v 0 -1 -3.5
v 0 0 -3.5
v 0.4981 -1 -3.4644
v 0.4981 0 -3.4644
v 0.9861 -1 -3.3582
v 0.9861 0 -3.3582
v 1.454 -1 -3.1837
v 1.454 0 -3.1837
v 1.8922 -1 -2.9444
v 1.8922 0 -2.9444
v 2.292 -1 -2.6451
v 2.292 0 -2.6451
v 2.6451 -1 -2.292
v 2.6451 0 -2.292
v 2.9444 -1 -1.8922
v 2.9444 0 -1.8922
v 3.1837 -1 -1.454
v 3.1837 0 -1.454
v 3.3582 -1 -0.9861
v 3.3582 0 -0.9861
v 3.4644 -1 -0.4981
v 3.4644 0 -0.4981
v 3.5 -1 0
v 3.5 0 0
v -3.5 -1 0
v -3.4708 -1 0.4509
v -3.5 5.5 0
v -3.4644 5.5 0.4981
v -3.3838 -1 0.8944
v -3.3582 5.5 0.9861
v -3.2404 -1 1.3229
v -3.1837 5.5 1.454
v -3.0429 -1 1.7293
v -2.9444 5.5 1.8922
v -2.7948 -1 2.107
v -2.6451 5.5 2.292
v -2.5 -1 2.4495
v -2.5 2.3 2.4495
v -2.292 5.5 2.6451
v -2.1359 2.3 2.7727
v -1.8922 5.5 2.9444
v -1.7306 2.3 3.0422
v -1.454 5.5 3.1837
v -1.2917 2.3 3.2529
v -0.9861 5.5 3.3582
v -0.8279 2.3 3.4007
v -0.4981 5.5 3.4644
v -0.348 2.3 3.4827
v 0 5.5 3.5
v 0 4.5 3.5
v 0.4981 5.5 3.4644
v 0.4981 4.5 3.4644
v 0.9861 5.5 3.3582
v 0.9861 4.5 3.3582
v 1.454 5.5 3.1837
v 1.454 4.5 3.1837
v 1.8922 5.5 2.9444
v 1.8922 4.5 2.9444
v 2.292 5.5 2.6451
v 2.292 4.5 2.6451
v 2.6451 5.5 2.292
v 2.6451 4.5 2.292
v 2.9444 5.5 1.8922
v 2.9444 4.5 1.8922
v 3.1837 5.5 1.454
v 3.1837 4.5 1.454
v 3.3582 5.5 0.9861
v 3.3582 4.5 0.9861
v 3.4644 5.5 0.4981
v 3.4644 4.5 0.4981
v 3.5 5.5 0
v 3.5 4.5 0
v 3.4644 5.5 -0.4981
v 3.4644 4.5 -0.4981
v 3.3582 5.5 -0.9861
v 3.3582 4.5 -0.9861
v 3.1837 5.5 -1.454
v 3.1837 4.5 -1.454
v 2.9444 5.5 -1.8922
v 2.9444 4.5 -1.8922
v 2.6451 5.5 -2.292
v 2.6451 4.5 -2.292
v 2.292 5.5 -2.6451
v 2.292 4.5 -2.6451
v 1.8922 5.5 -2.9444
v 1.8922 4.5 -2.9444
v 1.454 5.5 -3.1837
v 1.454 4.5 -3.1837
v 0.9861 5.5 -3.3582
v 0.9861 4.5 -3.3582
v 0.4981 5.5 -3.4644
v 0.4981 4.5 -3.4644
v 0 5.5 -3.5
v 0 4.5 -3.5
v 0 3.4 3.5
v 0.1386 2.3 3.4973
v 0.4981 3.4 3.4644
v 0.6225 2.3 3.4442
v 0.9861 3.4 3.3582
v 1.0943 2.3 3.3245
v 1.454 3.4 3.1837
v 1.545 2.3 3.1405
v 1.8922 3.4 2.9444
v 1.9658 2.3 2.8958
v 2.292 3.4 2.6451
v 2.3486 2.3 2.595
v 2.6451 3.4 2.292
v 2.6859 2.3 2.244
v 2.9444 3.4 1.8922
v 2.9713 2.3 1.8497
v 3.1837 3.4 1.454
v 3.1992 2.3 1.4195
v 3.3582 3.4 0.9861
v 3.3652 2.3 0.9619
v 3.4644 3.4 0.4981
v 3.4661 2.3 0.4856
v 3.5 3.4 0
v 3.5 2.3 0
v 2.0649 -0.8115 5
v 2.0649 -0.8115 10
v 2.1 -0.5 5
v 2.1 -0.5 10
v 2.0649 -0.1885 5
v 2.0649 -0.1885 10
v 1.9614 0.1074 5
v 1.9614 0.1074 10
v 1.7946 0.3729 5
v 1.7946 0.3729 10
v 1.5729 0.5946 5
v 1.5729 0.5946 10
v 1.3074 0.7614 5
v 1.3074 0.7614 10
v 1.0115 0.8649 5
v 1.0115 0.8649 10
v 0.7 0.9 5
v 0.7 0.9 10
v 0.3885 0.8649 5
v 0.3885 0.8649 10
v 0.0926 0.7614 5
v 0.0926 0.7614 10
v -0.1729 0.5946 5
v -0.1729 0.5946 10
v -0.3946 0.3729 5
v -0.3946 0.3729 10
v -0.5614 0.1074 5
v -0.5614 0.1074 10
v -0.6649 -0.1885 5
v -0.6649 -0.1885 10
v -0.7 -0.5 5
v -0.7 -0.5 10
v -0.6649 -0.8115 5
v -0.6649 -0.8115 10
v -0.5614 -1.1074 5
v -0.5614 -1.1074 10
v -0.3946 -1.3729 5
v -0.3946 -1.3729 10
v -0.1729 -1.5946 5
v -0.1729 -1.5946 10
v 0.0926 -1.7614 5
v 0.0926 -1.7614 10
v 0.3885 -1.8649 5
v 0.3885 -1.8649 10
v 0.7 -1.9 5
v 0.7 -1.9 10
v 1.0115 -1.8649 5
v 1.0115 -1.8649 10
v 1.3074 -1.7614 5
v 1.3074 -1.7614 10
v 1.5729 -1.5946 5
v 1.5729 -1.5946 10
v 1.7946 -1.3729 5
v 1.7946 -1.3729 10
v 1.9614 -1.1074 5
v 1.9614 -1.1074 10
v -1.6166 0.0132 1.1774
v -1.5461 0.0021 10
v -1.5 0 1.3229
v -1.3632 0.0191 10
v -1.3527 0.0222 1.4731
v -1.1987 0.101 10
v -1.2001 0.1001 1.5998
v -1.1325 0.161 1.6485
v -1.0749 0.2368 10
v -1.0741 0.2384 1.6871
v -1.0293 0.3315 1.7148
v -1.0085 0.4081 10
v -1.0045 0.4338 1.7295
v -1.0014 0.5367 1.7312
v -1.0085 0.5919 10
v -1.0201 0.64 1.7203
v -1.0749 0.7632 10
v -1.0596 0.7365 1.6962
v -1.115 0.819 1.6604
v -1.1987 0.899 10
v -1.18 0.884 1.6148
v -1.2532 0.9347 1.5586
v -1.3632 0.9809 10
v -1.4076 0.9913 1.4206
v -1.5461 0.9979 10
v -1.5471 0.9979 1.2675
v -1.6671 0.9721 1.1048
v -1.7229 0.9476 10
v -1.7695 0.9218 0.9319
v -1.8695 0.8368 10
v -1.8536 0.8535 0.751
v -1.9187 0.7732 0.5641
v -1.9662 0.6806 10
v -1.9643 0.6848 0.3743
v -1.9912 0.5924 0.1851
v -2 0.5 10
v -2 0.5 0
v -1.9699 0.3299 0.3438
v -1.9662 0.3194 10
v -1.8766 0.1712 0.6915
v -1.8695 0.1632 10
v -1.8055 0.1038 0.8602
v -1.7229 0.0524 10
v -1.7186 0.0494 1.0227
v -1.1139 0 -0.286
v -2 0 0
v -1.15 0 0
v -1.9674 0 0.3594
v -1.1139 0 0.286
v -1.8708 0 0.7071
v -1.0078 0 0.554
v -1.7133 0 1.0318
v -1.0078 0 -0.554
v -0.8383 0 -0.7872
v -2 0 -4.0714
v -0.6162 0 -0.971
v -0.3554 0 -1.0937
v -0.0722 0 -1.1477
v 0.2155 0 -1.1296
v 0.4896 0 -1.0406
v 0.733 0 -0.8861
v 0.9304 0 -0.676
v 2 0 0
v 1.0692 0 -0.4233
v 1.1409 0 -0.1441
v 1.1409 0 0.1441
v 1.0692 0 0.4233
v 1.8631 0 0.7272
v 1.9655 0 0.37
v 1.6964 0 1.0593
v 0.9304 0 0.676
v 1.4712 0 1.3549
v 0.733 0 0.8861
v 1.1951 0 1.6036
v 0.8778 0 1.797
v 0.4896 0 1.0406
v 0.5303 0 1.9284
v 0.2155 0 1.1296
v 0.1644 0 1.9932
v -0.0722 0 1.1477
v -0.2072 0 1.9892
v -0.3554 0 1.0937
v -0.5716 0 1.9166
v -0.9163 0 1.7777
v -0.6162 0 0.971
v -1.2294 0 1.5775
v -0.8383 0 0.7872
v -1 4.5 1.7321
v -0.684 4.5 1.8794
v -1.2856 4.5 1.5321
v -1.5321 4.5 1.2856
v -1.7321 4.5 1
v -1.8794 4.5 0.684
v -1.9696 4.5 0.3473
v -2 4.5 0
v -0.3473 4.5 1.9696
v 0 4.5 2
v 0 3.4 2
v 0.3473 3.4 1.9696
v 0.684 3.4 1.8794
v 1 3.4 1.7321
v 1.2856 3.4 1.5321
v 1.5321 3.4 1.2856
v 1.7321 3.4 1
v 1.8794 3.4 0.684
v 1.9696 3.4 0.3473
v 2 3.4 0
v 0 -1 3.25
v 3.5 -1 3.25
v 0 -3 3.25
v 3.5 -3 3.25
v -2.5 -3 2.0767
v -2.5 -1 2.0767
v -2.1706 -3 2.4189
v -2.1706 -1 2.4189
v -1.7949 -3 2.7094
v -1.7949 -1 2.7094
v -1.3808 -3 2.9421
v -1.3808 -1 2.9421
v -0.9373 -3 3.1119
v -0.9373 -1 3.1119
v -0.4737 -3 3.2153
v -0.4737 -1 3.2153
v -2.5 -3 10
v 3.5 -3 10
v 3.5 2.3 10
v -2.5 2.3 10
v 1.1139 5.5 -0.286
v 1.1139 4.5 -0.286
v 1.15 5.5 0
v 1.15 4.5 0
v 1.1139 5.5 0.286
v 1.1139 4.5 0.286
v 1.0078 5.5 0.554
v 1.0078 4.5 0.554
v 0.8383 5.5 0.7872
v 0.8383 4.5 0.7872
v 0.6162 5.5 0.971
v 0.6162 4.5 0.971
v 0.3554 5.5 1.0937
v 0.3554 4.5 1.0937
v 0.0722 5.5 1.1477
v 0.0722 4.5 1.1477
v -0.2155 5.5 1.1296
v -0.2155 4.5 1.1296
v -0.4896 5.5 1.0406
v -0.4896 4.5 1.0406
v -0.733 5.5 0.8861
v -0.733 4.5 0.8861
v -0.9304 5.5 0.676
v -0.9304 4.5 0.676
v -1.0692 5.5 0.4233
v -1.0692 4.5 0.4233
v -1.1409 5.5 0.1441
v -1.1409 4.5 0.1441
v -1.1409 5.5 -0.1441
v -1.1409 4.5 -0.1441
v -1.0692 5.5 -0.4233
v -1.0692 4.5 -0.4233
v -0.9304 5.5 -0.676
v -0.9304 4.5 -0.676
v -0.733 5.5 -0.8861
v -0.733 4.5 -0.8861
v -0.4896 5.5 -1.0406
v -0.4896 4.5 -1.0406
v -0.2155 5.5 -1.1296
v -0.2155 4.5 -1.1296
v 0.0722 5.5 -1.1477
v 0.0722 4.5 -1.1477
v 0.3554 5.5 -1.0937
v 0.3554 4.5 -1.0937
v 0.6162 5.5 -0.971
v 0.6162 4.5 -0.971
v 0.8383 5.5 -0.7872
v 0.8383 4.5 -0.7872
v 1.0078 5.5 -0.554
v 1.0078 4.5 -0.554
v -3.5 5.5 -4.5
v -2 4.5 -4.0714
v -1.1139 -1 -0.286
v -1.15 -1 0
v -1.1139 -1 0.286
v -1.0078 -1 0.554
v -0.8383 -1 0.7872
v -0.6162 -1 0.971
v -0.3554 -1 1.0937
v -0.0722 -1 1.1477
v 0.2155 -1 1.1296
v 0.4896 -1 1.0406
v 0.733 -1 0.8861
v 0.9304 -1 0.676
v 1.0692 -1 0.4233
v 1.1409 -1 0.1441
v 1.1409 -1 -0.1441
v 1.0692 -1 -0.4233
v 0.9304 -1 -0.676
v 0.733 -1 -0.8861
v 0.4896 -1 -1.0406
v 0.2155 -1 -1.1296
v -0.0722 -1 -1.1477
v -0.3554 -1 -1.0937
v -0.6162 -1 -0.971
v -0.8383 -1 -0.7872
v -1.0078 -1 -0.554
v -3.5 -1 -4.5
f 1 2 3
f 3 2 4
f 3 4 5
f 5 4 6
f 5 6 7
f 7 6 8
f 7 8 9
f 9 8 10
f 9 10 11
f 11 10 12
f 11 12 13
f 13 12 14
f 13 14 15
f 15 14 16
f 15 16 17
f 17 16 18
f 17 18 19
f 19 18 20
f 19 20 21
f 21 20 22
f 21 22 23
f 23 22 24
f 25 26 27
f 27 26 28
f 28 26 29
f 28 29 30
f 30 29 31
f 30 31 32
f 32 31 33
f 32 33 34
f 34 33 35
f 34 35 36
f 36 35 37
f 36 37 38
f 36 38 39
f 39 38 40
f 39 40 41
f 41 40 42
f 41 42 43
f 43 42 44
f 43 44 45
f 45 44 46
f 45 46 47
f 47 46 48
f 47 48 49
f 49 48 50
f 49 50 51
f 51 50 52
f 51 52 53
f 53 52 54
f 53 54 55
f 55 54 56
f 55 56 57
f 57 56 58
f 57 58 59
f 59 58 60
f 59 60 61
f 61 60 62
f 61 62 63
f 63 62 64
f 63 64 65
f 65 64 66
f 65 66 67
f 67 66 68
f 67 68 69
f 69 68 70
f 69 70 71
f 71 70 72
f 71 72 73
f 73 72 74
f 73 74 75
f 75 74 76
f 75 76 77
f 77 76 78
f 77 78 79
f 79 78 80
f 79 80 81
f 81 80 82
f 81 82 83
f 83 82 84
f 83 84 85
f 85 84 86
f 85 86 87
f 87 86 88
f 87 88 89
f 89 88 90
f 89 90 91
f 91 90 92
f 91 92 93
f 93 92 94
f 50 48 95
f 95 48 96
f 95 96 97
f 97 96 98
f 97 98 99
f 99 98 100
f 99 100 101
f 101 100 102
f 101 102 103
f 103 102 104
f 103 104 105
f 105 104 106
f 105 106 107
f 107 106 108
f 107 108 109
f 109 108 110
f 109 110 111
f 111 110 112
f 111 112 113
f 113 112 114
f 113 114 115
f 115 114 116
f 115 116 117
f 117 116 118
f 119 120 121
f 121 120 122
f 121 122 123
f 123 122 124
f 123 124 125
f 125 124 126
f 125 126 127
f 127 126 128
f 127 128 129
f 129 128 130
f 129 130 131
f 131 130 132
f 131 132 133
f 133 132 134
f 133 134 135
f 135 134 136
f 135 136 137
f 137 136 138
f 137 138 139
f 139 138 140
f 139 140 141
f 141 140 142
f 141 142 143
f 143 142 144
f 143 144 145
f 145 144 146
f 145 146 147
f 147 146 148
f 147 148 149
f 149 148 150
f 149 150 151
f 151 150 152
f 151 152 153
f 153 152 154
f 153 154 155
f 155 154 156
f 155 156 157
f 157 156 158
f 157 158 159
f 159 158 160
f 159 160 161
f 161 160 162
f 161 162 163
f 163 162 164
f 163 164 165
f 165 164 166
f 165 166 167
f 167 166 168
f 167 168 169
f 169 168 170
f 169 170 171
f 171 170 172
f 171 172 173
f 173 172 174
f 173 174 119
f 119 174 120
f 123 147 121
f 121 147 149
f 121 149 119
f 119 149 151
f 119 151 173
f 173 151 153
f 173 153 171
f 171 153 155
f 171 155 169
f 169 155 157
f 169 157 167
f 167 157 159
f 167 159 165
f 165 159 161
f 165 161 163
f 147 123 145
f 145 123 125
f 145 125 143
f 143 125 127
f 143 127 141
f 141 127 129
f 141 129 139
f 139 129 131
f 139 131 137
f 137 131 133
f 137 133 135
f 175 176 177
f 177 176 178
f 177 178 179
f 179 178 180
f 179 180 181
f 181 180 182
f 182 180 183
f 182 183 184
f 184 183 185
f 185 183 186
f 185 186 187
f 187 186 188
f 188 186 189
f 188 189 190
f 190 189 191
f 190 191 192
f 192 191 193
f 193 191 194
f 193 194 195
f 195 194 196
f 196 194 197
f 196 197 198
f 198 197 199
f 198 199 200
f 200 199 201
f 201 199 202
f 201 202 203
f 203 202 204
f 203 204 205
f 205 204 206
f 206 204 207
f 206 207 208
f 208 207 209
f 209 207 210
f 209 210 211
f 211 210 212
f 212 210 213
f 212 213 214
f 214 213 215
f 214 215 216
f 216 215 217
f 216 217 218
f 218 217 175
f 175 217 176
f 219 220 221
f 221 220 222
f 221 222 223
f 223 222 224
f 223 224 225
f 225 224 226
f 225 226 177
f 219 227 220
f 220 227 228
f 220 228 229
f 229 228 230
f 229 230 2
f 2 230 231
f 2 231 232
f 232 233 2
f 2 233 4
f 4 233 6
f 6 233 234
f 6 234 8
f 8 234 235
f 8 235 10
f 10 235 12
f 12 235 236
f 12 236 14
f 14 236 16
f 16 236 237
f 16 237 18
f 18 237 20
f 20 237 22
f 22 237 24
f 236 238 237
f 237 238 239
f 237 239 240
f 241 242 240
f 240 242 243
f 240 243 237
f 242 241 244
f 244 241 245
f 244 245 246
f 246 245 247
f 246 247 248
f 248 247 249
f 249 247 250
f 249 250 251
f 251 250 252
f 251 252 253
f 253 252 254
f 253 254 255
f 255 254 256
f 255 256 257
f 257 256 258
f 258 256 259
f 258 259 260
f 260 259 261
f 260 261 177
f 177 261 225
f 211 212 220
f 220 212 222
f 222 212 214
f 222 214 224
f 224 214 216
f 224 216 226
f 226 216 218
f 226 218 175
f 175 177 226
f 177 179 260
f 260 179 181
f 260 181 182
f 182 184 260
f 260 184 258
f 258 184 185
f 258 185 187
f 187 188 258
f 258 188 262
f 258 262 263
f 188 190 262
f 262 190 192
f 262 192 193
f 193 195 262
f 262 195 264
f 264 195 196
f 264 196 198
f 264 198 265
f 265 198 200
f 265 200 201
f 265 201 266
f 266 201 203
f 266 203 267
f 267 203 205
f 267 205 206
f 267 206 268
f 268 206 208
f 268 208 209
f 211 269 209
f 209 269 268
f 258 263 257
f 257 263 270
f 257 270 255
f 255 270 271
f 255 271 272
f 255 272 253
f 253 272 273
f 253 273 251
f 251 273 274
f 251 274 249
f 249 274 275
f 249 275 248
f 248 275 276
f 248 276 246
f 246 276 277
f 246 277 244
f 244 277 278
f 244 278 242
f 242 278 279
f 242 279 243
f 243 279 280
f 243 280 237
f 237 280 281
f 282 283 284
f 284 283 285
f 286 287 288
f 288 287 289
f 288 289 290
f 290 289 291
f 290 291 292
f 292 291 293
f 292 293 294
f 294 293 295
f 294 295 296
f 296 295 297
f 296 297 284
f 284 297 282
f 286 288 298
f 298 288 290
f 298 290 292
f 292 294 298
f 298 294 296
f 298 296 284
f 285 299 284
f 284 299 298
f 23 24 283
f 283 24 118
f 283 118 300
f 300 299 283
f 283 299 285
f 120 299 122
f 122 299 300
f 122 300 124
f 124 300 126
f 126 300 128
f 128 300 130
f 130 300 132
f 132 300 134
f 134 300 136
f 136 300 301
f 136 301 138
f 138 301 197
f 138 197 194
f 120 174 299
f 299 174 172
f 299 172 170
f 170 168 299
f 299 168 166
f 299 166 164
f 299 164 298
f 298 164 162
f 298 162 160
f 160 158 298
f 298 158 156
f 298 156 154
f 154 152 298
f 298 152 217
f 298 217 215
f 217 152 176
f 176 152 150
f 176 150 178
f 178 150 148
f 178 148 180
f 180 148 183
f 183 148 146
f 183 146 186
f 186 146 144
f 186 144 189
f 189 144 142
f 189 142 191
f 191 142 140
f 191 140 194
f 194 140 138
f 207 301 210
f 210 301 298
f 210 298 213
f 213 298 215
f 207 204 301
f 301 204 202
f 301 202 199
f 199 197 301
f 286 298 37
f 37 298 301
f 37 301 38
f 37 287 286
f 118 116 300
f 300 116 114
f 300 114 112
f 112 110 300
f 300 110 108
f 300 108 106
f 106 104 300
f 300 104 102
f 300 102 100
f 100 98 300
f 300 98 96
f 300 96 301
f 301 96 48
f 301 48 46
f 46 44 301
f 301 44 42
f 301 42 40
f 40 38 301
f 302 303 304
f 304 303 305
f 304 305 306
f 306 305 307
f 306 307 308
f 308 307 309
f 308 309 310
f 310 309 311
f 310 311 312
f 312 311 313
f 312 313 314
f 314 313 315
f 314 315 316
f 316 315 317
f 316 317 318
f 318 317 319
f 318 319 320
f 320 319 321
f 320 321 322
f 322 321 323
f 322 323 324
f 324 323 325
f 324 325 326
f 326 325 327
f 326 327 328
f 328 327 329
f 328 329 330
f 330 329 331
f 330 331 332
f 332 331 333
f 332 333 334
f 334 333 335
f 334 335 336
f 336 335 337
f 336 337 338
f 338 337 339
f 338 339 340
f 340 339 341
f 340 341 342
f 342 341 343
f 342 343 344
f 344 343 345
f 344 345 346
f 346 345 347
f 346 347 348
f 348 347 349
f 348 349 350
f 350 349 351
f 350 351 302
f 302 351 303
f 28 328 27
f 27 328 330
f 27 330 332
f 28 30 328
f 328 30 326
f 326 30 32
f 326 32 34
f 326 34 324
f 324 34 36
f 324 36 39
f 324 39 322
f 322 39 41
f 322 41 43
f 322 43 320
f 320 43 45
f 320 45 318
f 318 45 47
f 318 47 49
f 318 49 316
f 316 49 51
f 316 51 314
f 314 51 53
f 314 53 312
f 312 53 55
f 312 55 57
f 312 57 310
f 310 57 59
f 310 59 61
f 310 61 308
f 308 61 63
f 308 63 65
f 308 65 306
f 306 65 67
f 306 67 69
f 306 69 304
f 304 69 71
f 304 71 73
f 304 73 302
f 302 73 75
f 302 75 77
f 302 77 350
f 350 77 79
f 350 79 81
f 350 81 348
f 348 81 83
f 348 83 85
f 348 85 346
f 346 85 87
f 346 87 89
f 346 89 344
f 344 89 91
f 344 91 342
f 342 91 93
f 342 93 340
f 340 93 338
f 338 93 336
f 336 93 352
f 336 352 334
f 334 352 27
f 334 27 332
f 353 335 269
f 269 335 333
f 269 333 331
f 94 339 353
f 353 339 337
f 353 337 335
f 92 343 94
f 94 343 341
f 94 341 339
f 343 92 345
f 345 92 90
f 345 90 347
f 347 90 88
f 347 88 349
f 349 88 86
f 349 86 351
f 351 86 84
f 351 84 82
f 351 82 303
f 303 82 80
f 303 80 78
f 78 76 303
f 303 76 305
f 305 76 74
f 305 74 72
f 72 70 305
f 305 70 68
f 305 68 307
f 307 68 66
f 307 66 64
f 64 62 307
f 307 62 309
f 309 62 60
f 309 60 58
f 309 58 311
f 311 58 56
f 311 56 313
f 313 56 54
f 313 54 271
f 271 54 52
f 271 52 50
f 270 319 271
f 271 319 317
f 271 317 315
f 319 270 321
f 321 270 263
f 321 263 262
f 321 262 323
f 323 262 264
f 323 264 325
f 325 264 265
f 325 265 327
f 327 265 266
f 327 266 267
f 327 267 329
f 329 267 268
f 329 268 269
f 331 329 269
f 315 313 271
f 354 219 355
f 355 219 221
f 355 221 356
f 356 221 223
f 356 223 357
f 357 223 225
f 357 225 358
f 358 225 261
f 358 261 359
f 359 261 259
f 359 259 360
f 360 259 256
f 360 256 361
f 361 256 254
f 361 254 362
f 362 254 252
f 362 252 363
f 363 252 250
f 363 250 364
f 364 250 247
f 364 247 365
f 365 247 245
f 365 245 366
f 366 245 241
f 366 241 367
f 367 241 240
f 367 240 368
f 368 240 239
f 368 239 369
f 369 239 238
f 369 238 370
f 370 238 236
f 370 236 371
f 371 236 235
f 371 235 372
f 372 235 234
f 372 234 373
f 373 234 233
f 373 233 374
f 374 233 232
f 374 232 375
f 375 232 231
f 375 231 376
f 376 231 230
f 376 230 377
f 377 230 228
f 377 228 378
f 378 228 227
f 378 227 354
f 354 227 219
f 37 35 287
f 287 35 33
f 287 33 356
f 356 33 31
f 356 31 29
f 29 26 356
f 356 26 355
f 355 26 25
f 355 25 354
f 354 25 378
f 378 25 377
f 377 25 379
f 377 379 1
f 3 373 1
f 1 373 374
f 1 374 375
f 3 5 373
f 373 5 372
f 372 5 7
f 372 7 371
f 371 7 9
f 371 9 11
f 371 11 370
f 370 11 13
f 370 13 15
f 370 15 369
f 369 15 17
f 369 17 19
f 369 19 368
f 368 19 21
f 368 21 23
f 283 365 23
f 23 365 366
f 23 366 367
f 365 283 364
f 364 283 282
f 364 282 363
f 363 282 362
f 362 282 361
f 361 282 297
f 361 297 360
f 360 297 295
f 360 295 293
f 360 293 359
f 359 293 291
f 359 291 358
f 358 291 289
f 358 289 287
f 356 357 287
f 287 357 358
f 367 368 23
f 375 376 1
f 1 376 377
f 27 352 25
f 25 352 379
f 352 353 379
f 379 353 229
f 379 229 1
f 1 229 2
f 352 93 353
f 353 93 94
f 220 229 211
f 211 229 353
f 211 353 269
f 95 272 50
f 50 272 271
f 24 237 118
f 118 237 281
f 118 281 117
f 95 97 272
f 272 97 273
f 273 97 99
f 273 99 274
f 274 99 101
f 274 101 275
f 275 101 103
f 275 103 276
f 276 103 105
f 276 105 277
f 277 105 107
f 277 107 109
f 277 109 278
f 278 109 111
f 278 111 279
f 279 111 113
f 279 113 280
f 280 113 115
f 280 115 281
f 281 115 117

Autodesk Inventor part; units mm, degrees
ref_plane "YZ Plane" through (0, 0, 0) normal (1, 0, 0) x (0, 1, 0)
ref_plane "XZ Plane" through (0, 0, 0) normal (0, 1, 0) x (-1, 0, 0)
ref_plane "XY Plane" through (0, 0, 0) normal (0, 0, 1) x (1, 0, 0)
sketch "スケッチ1" plane through (0, 0, 0) normal (0, 1, 0) x (-1, 0, 0)
  circle A0 centre (0, 0) radius 1.15
  circle A1 centre (0, 0) radius 2
  circle A2 centre (0, 0) radius 3.5
  line L0 (0, 0) -> (-3.5, 0)
  line L1 (-3.5, 0) -> (-3.5, 3.5)
  line L2 (-3.5, 3.5) -> (0, 3.5)
  line L3 (0, 3.5) -> (0, 0)
  line L4 (-2, 0) -> (2, 0)
  line L5 (2, 0) -> (2, -3.5)
  line L6 (2, -3.5) -> (-2, -3.5)
  line L7 (-2, -3.5) -> (-2, 0)
  line L8 (0, 0) -> (3.5, 0)
  line L9 (3.5, 0) -> (3.5, -4.5)
  line L10 (3.5, -4.5) -> (0, -4.5)
  line L11 (0, -4.5) -> (0, 0)
  line L12 (0, -3.5) -> (3.5, -4.5)
  line L13 (2, -3.5) -> (2, -4.5)
  point P0 (0, 2)
  point P1 (2, -2.8723)
  point P2 (2, -4.0714)
  dimension "d1" = 4
  dimension "d0" = 2.3
  dimension "d2" = 7
  dimension "d3" = 3.5
  dimension "d4" = 3.5
  dimension "d41" = 3.5
  dimension "d42" = 4.5
extrude "押し出し1" add sketch "スケッチ1" along normal blind 3.4 contours A1 L0 A2 L3
extrude "押し出し2" add sketch "スケッチ1" along normal blind 4.5 contours L8 A2 L5 | A1 L3 A2 L8 | A2 L9 L12 L13 L5
extrude "押し出し3" add sketch "スケッチ1" against normal blind 1 contours L4 A1 L11 A0 | A0 L3 A1 L4 | A0 L0 A1 L3 | L11 A1 L0 A0 | L5 A2 L11 A1 | L8 A2 L5 | A1 L3 A2 L8 | A1 L0 A2 L3 | L11 A2 L7 A1 | L7 A2 L0
sketch "スケッチ2" plane through (0, 4.5, 0) normal (0, 1, 0) x (1, 0, 0)
  circle A0 centre (0, 0) radius 1.15
  circle A1 centre (0, 0) radius 2
  circle A2 centre (0, 0) radius 3.5
  line L0 (2, 0) -> (-2, 0)
  line L1 (-2, 0) -> (-2, 3.5)
  line L2 (-2, 3.5) -> (2, 3.5)
  line L3 (2, 3.5) -> (2, 0)
  line L4 (-3.5, 4.5) -> (-3.5, 0) projected
  line L5 (0, 0) -> (-3.5, 0)
  line L6 (-3.5, 0) -> (-3.5, 4.5)
  line L7 (-3.5, 4.5) -> (0, 4.5)
  line L8 (0, 4.5) -> (0, 0)
  line L9 (0, 3.5) -> (-3.5, 4.5)
  line L10 (-2, 2.8723) -> (-2, 4.0714) projected
  line L11 (-2, 0) -> (-2, 4.0714)
  point P0 (0, 3.5)
  dimension "d12" = 4
  dimension "d11" = 2.3
  dimension "d13" = 7
  dimension "d14" = 4
  dimension "d15" = 3.5
  dimension "d43" = 3.5
  dimension "d44" = 4.5
extrude "押し出し4" add sketch "スケッチ2" along normal blind 1 contours L0 A1 A0 | A0 L8 A1 L0 | A0 L0 A1 L8 | L3 A2 L5 A1 | A1 L8 A2 L3 | A1 L1 A2 L8 | L5 A2 L1 | A2 L1 L2 | L2 L10 L9 | A2 L4 L9 L10 L1
sketch "スケッチ3" plane through (0, -1, 0) normal (0, -1, 0) x (1, 0, 0)
  circle A0 centre (0, 0) radius 1.15
  circle A1 centre (0, 0) radius 3.5
  line L0 (-3.5, 0) -> (3.5, 0)
  line L1 (3.5, 0) -> (3.5, 3.5)
  line L2 (3.5, 3.5) -> (-3.5, 3.5)
  line L3 (-3.5, 3.5) -> (-3.5, 0)
  line L4 (0, 0) -> (3.5, 0)
  line L5 (3.5, 0) -> (3.5, 3.5)
  line L6 (3.5, 3.5) -> (0, 3.5)
  line L7 (0, 3.5) -> (0, 0)
  line L8 (3.5, 0) -> (-3.5, 0)
  line L9 (-3.5, 0) -> (-3.5, 10)
  line L10 (-3.5, 10) -> (3.5, 10)
  line L11 (3.5, 10) -> (3.5, 0)
  line L12 (3.5, 10) -> (-1.5, 10)
  line L13 (-1.5, 10) -> (-1.5, 0)
  line L14 (-1.5, 0) -> (3.5, 0)
  line L15 (3.5, 0) -> (3.5, 10)
  line L16 (-3.5, 0) -> (-1.5, 0)
  line L17 (-1.5, 0) -> (-2.5, 0)
  line L18 (-2.5, 0) -> (-2.5, 10)
  circle A2 centre (0, 0) radius 3.25
  line L19 (0, 3.25) -> (3.5, 3.25)
  line L20 (3.5, 3.25) -> (3.5, 3.5)
  line L21 (3.5, 3.5) -> (0, 3.5)
  line L22 (0, 3.5) -> (0, 3.25)
  line L23 (0, 0) -> (-3.5, 0)
  line L24 (-3.5, 0) -> (-3.5, -4.5)
  line L25 (-3.5, -4.5) -> (0, -4.5)
  line L26 (0, -4.5) -> (0, 0)
  line L27 (0, -3.5) -> (-3.5, -4.5)
  point P0 (0, 3.5)
  point P1 (-1.5, 3.1623)
  point P2 (-2.5, 2.4495)
  point P3 (-2.5, 2.0767)
  dimension "d33" = 6.5
  dimension "d18" = 2.3
  dimension "d19" = 7
  dimension "d20" = 7
  dimension "d23" = 7
  dimension "d24" = 10
  dimension "d25" = 5
  dimension "d39" = 3.5
  dimension "d40" = 4.5
extrude "押し出し5" add sketch "スケッチ3" against normal blind 3.3 contours A1 L19 L1 | L2 L1 L19 A1 | L2 L13 L10 L11 | A1 L13 L2 | A1 L18 L2 L13 | L2 L18 L10 L13
extrude "押し出し6" add sketch "スケッチ3" along normal blind 2 contours A2 L13 A1 L7 | L7 A1 L19 | L2 L1 L19 A1 | L2 L13 L10 L11 | A1 L13 L2 | A2 L18 A1 L13 | A1 L18 L2 L13 | L2 L18 L10 L13
ref_plane "作業平面1" through (-2, 0, -3.5) normal (0, 0, 1) x (1, 0, 0)
sketch "スケッチ4" plane through (-2, 0, -3.5) normal (0, 0, 1) x (1, 0, 0)
  line L0 (2, 3.4) -> (2, 0)
  line L1 (2, 0) -> (2, 0.5)
  line L2 (2, 0.5) -> (0.5, 0.5)
  circle A0 centre (0.5, 0.5) radius 0.5
  line L3 (0, 0) -> (4, 0) projected
  dimension "d28" = 0.5
  dimension "d29" = 1.5
  dimension "d30" = 90
extrude "押し出し7" cut sketch "スケッチ4" along normal blind 20 contours A0
sketch "スケッチ5" plane through (-2.5, 2.3, 10) normal (0, 0, 1) x (1, 0, 0)
  line L0 (6, -3.3) -> (6, -5.3) projected
  line L1 (6, -5.3) -> (3.2, -5.3)
  line L2 (3.2, -5.3) -> (3.2, -2.8)
  line L3 (3.2, -2.8) -> (6, -2.8)
  line L4 (6, -2.8) -> (6, -5.3)
  circle A0 centre (3.2, -2.8) radius 1.4
  point P0 (2.5, -2.3)
  dimension "d34" = 2.8
  dimension "d35" = 2.5
  dimension "d36" = 2.8
extrude "押し出し8" cut sketch "スケッチ5" against normal blind 5 contours A0 L2 L3 | L3 L2 A0
extrude "押し出し9" add sketch "スケッチ3" against normal blind 1 contours L27 L24 A1
properties part number "trod2.0"
